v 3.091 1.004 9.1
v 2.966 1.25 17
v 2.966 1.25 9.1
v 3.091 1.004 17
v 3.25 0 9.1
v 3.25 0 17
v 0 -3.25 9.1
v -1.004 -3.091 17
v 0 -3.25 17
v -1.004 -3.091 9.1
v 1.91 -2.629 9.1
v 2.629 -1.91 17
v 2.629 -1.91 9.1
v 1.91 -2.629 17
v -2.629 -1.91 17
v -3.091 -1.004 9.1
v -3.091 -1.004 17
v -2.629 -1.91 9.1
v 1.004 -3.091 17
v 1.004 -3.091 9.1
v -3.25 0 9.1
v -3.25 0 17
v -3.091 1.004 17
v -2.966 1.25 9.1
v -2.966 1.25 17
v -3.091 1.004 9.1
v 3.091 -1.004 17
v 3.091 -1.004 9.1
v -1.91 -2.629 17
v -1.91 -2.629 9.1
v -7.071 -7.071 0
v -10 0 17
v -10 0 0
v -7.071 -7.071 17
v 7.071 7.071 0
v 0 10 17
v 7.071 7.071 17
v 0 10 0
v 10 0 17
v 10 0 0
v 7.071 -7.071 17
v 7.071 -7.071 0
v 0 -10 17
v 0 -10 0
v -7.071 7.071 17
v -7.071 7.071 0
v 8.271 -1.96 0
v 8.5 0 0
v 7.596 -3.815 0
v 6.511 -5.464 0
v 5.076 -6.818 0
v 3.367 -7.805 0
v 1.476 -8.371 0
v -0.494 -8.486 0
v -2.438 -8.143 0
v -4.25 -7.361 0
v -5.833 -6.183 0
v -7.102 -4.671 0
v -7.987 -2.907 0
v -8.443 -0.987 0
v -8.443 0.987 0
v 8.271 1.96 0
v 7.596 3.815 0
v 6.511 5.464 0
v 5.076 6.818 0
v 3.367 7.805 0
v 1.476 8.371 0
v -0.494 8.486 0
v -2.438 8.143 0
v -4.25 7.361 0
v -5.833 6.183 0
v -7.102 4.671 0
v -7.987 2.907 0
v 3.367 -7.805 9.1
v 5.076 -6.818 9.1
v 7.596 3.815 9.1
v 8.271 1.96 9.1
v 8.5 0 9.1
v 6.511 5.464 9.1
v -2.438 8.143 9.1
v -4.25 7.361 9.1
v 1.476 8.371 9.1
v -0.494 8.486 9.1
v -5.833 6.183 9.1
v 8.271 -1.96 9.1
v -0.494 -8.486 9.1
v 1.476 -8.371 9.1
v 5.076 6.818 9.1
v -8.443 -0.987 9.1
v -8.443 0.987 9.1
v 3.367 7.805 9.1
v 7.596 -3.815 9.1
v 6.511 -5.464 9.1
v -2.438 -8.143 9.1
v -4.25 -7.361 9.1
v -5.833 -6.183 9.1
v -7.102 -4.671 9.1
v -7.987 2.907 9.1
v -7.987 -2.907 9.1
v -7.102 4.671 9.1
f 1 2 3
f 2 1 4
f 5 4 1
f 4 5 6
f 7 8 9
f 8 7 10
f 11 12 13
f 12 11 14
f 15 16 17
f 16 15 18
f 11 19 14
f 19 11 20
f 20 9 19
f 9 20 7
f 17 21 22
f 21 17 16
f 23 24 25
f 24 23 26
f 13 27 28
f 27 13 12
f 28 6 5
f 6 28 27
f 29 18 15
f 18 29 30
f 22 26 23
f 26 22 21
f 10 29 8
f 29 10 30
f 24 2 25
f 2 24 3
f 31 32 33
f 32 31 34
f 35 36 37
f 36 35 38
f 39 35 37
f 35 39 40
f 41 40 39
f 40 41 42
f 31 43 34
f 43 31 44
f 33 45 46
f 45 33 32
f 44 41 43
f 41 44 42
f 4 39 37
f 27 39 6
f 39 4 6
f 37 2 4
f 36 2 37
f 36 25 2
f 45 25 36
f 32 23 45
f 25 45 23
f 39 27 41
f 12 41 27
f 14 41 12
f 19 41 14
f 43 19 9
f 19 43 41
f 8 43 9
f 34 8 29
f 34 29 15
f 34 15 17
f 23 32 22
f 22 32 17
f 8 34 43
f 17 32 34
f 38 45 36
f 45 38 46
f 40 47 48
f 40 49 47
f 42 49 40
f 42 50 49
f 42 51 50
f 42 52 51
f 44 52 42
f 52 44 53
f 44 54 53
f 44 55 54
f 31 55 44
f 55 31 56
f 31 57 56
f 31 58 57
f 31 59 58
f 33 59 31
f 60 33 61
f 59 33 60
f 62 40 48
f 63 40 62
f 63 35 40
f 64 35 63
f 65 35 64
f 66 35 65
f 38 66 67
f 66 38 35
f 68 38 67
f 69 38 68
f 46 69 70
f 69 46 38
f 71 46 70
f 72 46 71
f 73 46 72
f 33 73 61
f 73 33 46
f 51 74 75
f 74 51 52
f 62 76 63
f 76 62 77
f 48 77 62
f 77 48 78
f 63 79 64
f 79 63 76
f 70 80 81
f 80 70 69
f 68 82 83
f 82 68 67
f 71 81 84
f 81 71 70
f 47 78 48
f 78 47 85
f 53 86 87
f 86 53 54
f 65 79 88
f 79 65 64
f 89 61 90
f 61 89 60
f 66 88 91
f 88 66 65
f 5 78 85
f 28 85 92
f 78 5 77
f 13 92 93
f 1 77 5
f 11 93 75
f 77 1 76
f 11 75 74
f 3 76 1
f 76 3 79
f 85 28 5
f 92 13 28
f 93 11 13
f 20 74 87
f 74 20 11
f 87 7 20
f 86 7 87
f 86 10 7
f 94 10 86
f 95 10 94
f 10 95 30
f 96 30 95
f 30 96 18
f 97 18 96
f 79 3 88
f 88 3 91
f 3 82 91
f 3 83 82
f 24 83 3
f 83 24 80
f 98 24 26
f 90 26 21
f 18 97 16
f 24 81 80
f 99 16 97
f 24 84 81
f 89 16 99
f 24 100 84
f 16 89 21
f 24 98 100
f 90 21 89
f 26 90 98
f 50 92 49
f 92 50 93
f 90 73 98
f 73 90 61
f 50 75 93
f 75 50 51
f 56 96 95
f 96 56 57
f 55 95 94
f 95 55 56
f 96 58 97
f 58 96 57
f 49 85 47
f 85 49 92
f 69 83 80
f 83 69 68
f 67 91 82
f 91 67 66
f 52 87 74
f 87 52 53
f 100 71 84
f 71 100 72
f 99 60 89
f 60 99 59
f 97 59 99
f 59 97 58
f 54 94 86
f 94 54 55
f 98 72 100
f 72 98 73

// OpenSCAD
// a knob for unnamed encoder
// with D-shaped 6 mm shaft

SHAFT_D = 6 + 0.5; // diameter
// height of part at the end with flat
SHAFT_CUTOUT_HEIGHT = 8; 
// flat diameter (to ther end of shaft, as measured by calipers)
SHAFT_CUTOUT_DEPTH = 4.5; 

KNOB_D = 20;
KNOB_INNER_D = 17; // hide encoder body
KNOB_HEIGHT = 17; // including TOP_WALL

TOP_WALL = -0.1; 

difference() {
    // knob body, intentionally non-circular
    cylinder(d=KNOB_D, h=KNOB_HEIGHT, $fn=8);
    
    // at the bottom, there is a wide cutout
    translate([0, 0, -0.1])
    cylinder(d=KNOB_INNER_D, h=KNOB_HEIGHT - SHAFT_CUTOUT_HEIGHT - TOP_WALL + 0.1);
    
    difference() {
        // shaft hole
        cylinder(d=SHAFT_D, h=KNOB_HEIGHT - TOP_WALL, $fn=20);
        
        // "D" cutout
        translate([-10, SHAFT_CUTOUT_DEPTH - SHAFT_D/2, 0])
        cube([20, 20, 40]);
    }
}
